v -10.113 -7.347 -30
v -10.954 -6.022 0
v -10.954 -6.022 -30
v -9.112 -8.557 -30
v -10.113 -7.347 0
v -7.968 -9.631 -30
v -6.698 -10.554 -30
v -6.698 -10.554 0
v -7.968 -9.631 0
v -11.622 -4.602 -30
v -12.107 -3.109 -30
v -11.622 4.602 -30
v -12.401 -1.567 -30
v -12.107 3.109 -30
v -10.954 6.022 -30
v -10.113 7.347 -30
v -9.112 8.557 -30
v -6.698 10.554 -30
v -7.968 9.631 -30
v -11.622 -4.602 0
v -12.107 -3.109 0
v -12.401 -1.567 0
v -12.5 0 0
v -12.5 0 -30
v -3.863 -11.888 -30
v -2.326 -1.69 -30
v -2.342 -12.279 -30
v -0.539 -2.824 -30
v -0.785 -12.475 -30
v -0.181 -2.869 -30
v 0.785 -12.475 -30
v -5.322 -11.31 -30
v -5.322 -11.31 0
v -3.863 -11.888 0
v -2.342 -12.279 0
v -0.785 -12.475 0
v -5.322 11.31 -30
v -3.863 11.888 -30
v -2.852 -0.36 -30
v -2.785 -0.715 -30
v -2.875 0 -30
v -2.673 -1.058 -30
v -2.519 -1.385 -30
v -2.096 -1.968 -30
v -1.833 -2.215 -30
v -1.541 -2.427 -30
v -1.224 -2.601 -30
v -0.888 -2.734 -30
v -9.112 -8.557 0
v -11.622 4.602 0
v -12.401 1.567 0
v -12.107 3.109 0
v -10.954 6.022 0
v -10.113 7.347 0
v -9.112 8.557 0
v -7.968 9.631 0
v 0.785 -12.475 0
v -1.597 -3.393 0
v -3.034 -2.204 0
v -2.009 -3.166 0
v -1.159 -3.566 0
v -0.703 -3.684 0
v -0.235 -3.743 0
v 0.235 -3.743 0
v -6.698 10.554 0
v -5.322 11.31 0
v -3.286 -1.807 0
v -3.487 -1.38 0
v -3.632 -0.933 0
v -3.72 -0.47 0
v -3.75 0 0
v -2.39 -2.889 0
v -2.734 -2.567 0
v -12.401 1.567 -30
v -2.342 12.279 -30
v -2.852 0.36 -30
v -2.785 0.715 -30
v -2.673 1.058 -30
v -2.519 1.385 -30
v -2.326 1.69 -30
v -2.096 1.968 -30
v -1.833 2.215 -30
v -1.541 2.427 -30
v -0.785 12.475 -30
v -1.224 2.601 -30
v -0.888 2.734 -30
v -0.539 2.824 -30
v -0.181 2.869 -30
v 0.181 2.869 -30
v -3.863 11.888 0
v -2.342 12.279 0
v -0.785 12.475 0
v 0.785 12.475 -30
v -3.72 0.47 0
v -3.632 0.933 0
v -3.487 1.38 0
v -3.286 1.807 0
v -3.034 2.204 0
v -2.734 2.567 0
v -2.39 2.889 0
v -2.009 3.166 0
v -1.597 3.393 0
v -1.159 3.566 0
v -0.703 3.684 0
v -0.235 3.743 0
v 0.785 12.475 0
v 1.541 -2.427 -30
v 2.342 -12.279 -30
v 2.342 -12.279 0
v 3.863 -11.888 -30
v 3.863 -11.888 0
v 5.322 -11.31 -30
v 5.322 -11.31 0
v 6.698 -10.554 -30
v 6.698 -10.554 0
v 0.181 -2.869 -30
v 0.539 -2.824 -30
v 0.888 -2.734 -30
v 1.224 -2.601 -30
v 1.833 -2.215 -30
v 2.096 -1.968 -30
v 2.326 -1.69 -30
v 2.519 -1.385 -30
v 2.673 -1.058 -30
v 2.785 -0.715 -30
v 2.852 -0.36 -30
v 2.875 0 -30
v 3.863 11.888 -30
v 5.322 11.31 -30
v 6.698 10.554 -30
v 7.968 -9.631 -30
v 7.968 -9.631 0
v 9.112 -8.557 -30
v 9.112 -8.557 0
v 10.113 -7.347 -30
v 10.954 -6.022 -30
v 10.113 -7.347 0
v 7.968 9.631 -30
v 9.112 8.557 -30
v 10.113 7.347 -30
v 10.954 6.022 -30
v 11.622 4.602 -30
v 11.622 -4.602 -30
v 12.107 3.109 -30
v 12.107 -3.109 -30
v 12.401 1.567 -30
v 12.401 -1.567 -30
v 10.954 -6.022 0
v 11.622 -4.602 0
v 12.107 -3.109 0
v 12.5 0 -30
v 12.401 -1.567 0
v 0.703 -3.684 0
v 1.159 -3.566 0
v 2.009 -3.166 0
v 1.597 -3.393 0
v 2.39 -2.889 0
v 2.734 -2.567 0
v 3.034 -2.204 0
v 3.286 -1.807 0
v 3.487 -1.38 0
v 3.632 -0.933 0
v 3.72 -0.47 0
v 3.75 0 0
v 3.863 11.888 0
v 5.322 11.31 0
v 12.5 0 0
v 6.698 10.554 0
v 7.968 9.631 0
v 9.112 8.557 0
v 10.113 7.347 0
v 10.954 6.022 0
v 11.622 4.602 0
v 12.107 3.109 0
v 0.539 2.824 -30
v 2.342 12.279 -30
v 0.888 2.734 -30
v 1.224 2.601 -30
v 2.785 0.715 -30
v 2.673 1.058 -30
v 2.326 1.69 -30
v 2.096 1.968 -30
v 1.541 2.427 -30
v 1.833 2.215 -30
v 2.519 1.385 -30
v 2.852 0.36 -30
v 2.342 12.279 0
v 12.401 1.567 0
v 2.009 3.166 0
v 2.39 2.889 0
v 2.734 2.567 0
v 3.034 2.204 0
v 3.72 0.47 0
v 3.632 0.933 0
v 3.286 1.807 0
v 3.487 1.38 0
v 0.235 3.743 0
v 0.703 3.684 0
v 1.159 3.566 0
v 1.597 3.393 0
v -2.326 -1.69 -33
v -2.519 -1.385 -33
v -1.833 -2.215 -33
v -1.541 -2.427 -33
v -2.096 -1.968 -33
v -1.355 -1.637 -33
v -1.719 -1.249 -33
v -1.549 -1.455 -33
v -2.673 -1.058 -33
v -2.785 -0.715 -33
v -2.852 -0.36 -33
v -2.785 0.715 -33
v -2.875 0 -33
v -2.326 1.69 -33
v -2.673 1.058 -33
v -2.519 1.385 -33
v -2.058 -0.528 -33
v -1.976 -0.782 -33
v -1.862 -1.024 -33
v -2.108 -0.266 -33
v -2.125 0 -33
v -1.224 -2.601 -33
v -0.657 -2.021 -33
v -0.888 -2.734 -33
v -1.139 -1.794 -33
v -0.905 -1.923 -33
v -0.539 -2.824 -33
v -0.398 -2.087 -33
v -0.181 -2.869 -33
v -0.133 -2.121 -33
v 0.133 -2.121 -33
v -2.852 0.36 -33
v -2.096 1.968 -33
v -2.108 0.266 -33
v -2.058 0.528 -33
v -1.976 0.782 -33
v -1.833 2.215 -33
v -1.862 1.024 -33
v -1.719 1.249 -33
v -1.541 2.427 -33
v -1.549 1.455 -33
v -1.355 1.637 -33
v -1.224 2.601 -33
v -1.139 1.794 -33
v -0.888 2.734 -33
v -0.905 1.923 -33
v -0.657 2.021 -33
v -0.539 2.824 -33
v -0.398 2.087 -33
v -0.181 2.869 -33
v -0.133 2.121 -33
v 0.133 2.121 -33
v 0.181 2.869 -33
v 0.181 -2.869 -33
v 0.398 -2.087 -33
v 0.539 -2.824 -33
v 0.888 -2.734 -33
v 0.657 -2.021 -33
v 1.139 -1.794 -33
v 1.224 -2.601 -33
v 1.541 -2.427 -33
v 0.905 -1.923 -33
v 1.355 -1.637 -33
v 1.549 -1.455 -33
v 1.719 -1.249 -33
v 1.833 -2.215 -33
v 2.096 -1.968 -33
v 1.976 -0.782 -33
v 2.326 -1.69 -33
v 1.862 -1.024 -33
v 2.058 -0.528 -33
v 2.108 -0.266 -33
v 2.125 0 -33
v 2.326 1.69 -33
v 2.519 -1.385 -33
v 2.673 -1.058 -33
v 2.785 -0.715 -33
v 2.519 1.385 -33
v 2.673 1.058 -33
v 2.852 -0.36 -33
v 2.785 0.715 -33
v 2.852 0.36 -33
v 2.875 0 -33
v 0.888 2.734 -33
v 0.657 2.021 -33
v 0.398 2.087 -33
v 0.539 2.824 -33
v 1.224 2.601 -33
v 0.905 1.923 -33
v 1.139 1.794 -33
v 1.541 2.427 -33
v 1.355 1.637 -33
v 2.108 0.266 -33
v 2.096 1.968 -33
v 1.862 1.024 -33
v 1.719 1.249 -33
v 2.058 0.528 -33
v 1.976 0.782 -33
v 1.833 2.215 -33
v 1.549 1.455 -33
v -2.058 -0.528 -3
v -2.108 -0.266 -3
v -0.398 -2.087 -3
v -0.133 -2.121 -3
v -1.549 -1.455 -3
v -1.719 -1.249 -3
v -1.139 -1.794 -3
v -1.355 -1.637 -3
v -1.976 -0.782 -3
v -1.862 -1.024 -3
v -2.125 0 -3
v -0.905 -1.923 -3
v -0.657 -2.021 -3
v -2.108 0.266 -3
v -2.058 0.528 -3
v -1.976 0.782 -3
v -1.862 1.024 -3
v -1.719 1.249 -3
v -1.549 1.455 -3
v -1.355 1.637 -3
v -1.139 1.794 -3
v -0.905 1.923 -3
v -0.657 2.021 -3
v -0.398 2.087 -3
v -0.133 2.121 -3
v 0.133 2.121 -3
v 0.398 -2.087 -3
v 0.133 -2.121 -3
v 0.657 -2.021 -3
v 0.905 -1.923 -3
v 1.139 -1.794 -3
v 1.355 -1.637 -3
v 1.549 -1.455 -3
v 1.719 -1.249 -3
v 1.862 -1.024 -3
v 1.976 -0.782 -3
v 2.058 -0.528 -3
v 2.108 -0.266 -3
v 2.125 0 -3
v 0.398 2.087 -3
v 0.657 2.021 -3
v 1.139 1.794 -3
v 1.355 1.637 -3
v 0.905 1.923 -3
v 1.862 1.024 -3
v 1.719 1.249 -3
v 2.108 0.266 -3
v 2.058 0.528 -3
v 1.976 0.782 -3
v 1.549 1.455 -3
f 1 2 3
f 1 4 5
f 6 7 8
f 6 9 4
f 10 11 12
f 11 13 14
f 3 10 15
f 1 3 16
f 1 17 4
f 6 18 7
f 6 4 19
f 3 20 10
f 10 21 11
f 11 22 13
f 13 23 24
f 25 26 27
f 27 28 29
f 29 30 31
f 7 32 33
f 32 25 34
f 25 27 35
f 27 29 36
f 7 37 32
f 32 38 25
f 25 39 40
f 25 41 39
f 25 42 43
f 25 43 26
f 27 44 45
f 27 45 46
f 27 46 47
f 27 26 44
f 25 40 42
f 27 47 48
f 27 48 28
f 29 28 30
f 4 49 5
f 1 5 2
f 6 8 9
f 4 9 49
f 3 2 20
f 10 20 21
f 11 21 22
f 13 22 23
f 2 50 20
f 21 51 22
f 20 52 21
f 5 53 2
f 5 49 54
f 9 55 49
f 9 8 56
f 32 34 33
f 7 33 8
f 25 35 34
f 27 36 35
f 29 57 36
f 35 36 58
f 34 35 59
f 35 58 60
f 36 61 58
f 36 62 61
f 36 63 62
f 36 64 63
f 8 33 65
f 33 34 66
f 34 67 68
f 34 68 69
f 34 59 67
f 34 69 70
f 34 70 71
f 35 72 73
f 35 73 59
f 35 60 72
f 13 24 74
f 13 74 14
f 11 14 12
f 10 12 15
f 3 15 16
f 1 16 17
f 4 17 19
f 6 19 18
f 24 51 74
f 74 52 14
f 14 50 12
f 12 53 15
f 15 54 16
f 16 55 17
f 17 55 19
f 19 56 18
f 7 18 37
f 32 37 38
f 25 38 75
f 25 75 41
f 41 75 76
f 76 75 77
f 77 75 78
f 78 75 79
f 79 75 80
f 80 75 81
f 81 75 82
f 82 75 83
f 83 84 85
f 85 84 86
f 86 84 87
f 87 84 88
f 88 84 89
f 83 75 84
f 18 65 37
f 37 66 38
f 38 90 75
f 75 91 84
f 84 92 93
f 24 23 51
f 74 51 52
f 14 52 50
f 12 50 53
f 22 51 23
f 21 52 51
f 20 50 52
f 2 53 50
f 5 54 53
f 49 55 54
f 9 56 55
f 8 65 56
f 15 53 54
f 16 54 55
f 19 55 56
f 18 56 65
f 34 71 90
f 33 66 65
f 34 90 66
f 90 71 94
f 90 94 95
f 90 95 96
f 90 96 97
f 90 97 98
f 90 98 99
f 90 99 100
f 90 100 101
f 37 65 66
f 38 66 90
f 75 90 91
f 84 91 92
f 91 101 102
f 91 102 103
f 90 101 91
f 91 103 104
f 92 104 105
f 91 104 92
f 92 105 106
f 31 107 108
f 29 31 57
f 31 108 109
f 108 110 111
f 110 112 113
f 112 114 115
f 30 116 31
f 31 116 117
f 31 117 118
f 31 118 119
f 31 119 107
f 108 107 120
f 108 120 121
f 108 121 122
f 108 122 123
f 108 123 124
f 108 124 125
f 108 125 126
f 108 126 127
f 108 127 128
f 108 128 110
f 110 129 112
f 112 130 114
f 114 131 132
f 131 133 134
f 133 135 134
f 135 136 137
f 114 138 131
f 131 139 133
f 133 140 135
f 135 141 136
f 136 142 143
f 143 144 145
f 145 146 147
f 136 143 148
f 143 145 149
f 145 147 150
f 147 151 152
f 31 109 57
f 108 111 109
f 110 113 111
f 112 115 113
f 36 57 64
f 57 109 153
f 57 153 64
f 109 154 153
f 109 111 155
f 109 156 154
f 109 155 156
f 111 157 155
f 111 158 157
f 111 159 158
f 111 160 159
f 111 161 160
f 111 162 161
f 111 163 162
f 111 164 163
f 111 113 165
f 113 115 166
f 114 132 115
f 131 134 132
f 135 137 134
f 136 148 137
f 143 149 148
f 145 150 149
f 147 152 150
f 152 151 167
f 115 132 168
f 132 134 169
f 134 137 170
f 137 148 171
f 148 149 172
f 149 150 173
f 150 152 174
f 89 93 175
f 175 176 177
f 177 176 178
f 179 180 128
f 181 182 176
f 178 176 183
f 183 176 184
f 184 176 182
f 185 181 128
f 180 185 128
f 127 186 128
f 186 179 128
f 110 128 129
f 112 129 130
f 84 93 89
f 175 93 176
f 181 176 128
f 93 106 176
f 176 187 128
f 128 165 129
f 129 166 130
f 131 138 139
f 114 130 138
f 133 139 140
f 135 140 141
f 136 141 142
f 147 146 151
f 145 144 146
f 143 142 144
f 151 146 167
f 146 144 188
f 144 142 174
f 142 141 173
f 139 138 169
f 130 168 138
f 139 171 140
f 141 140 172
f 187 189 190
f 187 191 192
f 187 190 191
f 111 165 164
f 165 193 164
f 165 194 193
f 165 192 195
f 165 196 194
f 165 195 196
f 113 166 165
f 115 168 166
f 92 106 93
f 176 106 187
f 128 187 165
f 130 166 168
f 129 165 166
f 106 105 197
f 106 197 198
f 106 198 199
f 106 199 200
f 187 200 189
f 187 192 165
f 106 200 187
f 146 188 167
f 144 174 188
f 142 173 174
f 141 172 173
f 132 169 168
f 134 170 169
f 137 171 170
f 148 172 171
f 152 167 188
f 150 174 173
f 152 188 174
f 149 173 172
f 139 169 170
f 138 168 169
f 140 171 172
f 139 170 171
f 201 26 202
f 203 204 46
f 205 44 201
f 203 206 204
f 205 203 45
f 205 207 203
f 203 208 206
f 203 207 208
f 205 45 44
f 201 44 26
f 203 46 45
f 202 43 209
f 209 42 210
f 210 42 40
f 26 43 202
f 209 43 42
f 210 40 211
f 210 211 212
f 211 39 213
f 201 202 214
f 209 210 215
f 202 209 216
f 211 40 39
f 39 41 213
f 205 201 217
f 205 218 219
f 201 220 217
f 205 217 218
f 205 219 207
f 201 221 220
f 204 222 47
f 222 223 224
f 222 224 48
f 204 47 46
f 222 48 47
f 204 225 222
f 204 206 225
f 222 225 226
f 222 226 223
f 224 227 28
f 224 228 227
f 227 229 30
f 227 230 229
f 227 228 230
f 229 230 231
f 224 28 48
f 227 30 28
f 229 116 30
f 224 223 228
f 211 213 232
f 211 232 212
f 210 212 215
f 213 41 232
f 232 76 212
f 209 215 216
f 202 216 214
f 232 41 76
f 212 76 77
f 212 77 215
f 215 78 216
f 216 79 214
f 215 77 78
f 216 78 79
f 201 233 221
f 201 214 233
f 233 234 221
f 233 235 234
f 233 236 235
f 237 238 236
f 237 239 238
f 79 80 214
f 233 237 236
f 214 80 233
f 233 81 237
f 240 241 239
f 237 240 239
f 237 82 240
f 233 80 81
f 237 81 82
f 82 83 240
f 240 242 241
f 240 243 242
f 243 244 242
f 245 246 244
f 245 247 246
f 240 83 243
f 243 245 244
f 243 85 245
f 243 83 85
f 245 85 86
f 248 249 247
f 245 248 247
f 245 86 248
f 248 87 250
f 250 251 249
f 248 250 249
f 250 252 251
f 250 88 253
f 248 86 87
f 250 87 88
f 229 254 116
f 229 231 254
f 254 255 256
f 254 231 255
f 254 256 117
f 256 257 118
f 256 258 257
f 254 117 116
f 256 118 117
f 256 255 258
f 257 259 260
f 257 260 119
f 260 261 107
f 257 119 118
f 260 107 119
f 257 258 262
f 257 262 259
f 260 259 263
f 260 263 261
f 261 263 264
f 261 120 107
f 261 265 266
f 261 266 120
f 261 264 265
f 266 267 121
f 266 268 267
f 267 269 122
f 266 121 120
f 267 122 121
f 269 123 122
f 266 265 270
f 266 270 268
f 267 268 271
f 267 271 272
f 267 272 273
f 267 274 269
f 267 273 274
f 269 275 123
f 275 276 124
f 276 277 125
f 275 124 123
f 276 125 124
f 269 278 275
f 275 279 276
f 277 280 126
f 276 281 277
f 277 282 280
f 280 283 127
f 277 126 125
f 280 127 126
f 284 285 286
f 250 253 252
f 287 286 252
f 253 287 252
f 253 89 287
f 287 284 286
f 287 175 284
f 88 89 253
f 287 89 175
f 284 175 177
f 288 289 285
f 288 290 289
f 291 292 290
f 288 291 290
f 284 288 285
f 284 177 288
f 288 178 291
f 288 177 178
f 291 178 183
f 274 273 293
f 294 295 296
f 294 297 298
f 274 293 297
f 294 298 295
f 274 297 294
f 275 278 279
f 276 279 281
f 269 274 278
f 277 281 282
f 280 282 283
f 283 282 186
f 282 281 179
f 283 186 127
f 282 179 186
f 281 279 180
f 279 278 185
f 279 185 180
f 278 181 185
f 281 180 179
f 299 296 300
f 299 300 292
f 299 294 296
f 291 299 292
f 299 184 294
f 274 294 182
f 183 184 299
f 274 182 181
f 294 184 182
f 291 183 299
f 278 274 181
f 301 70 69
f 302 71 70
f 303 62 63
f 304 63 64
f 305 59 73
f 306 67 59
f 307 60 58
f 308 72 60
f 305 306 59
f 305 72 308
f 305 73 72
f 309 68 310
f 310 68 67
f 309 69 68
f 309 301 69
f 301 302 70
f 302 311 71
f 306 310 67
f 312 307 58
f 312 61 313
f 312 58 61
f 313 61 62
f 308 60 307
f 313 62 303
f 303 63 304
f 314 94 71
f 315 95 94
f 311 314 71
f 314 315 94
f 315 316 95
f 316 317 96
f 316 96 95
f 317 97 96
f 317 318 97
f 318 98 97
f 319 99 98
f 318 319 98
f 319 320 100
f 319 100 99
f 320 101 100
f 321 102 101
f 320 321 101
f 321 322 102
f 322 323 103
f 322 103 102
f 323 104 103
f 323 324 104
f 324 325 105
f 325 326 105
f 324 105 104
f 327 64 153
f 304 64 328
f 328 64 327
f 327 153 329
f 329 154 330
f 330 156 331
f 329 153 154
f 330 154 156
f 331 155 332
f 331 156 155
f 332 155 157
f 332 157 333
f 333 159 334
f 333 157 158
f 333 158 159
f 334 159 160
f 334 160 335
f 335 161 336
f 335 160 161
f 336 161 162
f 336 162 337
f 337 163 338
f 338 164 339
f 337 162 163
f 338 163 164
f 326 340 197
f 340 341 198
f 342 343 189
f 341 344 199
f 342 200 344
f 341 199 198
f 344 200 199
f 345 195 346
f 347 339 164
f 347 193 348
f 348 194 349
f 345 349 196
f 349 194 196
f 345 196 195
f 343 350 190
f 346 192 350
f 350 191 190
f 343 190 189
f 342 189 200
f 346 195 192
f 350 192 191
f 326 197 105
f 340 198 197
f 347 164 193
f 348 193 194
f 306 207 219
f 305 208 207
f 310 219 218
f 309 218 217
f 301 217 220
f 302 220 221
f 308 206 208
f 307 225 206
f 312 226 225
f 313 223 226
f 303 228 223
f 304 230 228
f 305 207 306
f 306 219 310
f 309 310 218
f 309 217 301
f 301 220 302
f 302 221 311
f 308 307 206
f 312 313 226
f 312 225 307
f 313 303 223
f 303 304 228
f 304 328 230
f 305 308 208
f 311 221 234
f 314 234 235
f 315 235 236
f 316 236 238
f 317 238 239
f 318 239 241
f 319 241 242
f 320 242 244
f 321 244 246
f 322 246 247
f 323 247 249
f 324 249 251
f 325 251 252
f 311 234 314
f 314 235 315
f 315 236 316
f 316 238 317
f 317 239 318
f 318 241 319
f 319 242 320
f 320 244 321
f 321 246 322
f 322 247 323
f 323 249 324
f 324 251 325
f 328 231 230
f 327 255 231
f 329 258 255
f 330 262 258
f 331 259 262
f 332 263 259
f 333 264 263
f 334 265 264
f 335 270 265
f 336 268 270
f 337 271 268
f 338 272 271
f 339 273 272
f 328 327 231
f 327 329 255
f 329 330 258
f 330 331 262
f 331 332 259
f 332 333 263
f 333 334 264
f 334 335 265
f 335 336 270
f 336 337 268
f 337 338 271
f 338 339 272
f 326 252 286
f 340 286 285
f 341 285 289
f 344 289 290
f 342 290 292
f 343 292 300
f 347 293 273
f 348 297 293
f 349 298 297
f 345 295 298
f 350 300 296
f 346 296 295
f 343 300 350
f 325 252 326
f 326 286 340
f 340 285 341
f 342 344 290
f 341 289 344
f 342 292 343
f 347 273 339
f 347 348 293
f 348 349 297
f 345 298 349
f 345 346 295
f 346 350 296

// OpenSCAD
$fn = 50;

difference() {
	union() {
		translate(v = [0, 0, -30.0]) {
			cylinder(h = 30, r = 12.5);
		}
		#translate(v = [0, 0, -33.0]) {
			cylinder(h = 33, r = 2.875);
		}
	}
	union() {
		translate(v = [0, 0, 0]) {
			rotate(a = [0, 0, 0]) {
				difference() {
					union() {
						translate(v = [0, 0, -33.0]) {
							cylinder(h = 33, r = 2.0);
						}
						translate(v = [0, 0, -3]) {
							cylinder(h = 3, r1 = 2.125, r2 = 3.75);
						}
						translate(v = [0, 0, -33.0]) {
							cylinder(h = 33, r = 2.125);
						}
						translate(v = [0, 0, -33.0]) {
							cylinder(h = 33, r = 2.0);
						}
					}
					union();
				}
			}
		}
	}
}
